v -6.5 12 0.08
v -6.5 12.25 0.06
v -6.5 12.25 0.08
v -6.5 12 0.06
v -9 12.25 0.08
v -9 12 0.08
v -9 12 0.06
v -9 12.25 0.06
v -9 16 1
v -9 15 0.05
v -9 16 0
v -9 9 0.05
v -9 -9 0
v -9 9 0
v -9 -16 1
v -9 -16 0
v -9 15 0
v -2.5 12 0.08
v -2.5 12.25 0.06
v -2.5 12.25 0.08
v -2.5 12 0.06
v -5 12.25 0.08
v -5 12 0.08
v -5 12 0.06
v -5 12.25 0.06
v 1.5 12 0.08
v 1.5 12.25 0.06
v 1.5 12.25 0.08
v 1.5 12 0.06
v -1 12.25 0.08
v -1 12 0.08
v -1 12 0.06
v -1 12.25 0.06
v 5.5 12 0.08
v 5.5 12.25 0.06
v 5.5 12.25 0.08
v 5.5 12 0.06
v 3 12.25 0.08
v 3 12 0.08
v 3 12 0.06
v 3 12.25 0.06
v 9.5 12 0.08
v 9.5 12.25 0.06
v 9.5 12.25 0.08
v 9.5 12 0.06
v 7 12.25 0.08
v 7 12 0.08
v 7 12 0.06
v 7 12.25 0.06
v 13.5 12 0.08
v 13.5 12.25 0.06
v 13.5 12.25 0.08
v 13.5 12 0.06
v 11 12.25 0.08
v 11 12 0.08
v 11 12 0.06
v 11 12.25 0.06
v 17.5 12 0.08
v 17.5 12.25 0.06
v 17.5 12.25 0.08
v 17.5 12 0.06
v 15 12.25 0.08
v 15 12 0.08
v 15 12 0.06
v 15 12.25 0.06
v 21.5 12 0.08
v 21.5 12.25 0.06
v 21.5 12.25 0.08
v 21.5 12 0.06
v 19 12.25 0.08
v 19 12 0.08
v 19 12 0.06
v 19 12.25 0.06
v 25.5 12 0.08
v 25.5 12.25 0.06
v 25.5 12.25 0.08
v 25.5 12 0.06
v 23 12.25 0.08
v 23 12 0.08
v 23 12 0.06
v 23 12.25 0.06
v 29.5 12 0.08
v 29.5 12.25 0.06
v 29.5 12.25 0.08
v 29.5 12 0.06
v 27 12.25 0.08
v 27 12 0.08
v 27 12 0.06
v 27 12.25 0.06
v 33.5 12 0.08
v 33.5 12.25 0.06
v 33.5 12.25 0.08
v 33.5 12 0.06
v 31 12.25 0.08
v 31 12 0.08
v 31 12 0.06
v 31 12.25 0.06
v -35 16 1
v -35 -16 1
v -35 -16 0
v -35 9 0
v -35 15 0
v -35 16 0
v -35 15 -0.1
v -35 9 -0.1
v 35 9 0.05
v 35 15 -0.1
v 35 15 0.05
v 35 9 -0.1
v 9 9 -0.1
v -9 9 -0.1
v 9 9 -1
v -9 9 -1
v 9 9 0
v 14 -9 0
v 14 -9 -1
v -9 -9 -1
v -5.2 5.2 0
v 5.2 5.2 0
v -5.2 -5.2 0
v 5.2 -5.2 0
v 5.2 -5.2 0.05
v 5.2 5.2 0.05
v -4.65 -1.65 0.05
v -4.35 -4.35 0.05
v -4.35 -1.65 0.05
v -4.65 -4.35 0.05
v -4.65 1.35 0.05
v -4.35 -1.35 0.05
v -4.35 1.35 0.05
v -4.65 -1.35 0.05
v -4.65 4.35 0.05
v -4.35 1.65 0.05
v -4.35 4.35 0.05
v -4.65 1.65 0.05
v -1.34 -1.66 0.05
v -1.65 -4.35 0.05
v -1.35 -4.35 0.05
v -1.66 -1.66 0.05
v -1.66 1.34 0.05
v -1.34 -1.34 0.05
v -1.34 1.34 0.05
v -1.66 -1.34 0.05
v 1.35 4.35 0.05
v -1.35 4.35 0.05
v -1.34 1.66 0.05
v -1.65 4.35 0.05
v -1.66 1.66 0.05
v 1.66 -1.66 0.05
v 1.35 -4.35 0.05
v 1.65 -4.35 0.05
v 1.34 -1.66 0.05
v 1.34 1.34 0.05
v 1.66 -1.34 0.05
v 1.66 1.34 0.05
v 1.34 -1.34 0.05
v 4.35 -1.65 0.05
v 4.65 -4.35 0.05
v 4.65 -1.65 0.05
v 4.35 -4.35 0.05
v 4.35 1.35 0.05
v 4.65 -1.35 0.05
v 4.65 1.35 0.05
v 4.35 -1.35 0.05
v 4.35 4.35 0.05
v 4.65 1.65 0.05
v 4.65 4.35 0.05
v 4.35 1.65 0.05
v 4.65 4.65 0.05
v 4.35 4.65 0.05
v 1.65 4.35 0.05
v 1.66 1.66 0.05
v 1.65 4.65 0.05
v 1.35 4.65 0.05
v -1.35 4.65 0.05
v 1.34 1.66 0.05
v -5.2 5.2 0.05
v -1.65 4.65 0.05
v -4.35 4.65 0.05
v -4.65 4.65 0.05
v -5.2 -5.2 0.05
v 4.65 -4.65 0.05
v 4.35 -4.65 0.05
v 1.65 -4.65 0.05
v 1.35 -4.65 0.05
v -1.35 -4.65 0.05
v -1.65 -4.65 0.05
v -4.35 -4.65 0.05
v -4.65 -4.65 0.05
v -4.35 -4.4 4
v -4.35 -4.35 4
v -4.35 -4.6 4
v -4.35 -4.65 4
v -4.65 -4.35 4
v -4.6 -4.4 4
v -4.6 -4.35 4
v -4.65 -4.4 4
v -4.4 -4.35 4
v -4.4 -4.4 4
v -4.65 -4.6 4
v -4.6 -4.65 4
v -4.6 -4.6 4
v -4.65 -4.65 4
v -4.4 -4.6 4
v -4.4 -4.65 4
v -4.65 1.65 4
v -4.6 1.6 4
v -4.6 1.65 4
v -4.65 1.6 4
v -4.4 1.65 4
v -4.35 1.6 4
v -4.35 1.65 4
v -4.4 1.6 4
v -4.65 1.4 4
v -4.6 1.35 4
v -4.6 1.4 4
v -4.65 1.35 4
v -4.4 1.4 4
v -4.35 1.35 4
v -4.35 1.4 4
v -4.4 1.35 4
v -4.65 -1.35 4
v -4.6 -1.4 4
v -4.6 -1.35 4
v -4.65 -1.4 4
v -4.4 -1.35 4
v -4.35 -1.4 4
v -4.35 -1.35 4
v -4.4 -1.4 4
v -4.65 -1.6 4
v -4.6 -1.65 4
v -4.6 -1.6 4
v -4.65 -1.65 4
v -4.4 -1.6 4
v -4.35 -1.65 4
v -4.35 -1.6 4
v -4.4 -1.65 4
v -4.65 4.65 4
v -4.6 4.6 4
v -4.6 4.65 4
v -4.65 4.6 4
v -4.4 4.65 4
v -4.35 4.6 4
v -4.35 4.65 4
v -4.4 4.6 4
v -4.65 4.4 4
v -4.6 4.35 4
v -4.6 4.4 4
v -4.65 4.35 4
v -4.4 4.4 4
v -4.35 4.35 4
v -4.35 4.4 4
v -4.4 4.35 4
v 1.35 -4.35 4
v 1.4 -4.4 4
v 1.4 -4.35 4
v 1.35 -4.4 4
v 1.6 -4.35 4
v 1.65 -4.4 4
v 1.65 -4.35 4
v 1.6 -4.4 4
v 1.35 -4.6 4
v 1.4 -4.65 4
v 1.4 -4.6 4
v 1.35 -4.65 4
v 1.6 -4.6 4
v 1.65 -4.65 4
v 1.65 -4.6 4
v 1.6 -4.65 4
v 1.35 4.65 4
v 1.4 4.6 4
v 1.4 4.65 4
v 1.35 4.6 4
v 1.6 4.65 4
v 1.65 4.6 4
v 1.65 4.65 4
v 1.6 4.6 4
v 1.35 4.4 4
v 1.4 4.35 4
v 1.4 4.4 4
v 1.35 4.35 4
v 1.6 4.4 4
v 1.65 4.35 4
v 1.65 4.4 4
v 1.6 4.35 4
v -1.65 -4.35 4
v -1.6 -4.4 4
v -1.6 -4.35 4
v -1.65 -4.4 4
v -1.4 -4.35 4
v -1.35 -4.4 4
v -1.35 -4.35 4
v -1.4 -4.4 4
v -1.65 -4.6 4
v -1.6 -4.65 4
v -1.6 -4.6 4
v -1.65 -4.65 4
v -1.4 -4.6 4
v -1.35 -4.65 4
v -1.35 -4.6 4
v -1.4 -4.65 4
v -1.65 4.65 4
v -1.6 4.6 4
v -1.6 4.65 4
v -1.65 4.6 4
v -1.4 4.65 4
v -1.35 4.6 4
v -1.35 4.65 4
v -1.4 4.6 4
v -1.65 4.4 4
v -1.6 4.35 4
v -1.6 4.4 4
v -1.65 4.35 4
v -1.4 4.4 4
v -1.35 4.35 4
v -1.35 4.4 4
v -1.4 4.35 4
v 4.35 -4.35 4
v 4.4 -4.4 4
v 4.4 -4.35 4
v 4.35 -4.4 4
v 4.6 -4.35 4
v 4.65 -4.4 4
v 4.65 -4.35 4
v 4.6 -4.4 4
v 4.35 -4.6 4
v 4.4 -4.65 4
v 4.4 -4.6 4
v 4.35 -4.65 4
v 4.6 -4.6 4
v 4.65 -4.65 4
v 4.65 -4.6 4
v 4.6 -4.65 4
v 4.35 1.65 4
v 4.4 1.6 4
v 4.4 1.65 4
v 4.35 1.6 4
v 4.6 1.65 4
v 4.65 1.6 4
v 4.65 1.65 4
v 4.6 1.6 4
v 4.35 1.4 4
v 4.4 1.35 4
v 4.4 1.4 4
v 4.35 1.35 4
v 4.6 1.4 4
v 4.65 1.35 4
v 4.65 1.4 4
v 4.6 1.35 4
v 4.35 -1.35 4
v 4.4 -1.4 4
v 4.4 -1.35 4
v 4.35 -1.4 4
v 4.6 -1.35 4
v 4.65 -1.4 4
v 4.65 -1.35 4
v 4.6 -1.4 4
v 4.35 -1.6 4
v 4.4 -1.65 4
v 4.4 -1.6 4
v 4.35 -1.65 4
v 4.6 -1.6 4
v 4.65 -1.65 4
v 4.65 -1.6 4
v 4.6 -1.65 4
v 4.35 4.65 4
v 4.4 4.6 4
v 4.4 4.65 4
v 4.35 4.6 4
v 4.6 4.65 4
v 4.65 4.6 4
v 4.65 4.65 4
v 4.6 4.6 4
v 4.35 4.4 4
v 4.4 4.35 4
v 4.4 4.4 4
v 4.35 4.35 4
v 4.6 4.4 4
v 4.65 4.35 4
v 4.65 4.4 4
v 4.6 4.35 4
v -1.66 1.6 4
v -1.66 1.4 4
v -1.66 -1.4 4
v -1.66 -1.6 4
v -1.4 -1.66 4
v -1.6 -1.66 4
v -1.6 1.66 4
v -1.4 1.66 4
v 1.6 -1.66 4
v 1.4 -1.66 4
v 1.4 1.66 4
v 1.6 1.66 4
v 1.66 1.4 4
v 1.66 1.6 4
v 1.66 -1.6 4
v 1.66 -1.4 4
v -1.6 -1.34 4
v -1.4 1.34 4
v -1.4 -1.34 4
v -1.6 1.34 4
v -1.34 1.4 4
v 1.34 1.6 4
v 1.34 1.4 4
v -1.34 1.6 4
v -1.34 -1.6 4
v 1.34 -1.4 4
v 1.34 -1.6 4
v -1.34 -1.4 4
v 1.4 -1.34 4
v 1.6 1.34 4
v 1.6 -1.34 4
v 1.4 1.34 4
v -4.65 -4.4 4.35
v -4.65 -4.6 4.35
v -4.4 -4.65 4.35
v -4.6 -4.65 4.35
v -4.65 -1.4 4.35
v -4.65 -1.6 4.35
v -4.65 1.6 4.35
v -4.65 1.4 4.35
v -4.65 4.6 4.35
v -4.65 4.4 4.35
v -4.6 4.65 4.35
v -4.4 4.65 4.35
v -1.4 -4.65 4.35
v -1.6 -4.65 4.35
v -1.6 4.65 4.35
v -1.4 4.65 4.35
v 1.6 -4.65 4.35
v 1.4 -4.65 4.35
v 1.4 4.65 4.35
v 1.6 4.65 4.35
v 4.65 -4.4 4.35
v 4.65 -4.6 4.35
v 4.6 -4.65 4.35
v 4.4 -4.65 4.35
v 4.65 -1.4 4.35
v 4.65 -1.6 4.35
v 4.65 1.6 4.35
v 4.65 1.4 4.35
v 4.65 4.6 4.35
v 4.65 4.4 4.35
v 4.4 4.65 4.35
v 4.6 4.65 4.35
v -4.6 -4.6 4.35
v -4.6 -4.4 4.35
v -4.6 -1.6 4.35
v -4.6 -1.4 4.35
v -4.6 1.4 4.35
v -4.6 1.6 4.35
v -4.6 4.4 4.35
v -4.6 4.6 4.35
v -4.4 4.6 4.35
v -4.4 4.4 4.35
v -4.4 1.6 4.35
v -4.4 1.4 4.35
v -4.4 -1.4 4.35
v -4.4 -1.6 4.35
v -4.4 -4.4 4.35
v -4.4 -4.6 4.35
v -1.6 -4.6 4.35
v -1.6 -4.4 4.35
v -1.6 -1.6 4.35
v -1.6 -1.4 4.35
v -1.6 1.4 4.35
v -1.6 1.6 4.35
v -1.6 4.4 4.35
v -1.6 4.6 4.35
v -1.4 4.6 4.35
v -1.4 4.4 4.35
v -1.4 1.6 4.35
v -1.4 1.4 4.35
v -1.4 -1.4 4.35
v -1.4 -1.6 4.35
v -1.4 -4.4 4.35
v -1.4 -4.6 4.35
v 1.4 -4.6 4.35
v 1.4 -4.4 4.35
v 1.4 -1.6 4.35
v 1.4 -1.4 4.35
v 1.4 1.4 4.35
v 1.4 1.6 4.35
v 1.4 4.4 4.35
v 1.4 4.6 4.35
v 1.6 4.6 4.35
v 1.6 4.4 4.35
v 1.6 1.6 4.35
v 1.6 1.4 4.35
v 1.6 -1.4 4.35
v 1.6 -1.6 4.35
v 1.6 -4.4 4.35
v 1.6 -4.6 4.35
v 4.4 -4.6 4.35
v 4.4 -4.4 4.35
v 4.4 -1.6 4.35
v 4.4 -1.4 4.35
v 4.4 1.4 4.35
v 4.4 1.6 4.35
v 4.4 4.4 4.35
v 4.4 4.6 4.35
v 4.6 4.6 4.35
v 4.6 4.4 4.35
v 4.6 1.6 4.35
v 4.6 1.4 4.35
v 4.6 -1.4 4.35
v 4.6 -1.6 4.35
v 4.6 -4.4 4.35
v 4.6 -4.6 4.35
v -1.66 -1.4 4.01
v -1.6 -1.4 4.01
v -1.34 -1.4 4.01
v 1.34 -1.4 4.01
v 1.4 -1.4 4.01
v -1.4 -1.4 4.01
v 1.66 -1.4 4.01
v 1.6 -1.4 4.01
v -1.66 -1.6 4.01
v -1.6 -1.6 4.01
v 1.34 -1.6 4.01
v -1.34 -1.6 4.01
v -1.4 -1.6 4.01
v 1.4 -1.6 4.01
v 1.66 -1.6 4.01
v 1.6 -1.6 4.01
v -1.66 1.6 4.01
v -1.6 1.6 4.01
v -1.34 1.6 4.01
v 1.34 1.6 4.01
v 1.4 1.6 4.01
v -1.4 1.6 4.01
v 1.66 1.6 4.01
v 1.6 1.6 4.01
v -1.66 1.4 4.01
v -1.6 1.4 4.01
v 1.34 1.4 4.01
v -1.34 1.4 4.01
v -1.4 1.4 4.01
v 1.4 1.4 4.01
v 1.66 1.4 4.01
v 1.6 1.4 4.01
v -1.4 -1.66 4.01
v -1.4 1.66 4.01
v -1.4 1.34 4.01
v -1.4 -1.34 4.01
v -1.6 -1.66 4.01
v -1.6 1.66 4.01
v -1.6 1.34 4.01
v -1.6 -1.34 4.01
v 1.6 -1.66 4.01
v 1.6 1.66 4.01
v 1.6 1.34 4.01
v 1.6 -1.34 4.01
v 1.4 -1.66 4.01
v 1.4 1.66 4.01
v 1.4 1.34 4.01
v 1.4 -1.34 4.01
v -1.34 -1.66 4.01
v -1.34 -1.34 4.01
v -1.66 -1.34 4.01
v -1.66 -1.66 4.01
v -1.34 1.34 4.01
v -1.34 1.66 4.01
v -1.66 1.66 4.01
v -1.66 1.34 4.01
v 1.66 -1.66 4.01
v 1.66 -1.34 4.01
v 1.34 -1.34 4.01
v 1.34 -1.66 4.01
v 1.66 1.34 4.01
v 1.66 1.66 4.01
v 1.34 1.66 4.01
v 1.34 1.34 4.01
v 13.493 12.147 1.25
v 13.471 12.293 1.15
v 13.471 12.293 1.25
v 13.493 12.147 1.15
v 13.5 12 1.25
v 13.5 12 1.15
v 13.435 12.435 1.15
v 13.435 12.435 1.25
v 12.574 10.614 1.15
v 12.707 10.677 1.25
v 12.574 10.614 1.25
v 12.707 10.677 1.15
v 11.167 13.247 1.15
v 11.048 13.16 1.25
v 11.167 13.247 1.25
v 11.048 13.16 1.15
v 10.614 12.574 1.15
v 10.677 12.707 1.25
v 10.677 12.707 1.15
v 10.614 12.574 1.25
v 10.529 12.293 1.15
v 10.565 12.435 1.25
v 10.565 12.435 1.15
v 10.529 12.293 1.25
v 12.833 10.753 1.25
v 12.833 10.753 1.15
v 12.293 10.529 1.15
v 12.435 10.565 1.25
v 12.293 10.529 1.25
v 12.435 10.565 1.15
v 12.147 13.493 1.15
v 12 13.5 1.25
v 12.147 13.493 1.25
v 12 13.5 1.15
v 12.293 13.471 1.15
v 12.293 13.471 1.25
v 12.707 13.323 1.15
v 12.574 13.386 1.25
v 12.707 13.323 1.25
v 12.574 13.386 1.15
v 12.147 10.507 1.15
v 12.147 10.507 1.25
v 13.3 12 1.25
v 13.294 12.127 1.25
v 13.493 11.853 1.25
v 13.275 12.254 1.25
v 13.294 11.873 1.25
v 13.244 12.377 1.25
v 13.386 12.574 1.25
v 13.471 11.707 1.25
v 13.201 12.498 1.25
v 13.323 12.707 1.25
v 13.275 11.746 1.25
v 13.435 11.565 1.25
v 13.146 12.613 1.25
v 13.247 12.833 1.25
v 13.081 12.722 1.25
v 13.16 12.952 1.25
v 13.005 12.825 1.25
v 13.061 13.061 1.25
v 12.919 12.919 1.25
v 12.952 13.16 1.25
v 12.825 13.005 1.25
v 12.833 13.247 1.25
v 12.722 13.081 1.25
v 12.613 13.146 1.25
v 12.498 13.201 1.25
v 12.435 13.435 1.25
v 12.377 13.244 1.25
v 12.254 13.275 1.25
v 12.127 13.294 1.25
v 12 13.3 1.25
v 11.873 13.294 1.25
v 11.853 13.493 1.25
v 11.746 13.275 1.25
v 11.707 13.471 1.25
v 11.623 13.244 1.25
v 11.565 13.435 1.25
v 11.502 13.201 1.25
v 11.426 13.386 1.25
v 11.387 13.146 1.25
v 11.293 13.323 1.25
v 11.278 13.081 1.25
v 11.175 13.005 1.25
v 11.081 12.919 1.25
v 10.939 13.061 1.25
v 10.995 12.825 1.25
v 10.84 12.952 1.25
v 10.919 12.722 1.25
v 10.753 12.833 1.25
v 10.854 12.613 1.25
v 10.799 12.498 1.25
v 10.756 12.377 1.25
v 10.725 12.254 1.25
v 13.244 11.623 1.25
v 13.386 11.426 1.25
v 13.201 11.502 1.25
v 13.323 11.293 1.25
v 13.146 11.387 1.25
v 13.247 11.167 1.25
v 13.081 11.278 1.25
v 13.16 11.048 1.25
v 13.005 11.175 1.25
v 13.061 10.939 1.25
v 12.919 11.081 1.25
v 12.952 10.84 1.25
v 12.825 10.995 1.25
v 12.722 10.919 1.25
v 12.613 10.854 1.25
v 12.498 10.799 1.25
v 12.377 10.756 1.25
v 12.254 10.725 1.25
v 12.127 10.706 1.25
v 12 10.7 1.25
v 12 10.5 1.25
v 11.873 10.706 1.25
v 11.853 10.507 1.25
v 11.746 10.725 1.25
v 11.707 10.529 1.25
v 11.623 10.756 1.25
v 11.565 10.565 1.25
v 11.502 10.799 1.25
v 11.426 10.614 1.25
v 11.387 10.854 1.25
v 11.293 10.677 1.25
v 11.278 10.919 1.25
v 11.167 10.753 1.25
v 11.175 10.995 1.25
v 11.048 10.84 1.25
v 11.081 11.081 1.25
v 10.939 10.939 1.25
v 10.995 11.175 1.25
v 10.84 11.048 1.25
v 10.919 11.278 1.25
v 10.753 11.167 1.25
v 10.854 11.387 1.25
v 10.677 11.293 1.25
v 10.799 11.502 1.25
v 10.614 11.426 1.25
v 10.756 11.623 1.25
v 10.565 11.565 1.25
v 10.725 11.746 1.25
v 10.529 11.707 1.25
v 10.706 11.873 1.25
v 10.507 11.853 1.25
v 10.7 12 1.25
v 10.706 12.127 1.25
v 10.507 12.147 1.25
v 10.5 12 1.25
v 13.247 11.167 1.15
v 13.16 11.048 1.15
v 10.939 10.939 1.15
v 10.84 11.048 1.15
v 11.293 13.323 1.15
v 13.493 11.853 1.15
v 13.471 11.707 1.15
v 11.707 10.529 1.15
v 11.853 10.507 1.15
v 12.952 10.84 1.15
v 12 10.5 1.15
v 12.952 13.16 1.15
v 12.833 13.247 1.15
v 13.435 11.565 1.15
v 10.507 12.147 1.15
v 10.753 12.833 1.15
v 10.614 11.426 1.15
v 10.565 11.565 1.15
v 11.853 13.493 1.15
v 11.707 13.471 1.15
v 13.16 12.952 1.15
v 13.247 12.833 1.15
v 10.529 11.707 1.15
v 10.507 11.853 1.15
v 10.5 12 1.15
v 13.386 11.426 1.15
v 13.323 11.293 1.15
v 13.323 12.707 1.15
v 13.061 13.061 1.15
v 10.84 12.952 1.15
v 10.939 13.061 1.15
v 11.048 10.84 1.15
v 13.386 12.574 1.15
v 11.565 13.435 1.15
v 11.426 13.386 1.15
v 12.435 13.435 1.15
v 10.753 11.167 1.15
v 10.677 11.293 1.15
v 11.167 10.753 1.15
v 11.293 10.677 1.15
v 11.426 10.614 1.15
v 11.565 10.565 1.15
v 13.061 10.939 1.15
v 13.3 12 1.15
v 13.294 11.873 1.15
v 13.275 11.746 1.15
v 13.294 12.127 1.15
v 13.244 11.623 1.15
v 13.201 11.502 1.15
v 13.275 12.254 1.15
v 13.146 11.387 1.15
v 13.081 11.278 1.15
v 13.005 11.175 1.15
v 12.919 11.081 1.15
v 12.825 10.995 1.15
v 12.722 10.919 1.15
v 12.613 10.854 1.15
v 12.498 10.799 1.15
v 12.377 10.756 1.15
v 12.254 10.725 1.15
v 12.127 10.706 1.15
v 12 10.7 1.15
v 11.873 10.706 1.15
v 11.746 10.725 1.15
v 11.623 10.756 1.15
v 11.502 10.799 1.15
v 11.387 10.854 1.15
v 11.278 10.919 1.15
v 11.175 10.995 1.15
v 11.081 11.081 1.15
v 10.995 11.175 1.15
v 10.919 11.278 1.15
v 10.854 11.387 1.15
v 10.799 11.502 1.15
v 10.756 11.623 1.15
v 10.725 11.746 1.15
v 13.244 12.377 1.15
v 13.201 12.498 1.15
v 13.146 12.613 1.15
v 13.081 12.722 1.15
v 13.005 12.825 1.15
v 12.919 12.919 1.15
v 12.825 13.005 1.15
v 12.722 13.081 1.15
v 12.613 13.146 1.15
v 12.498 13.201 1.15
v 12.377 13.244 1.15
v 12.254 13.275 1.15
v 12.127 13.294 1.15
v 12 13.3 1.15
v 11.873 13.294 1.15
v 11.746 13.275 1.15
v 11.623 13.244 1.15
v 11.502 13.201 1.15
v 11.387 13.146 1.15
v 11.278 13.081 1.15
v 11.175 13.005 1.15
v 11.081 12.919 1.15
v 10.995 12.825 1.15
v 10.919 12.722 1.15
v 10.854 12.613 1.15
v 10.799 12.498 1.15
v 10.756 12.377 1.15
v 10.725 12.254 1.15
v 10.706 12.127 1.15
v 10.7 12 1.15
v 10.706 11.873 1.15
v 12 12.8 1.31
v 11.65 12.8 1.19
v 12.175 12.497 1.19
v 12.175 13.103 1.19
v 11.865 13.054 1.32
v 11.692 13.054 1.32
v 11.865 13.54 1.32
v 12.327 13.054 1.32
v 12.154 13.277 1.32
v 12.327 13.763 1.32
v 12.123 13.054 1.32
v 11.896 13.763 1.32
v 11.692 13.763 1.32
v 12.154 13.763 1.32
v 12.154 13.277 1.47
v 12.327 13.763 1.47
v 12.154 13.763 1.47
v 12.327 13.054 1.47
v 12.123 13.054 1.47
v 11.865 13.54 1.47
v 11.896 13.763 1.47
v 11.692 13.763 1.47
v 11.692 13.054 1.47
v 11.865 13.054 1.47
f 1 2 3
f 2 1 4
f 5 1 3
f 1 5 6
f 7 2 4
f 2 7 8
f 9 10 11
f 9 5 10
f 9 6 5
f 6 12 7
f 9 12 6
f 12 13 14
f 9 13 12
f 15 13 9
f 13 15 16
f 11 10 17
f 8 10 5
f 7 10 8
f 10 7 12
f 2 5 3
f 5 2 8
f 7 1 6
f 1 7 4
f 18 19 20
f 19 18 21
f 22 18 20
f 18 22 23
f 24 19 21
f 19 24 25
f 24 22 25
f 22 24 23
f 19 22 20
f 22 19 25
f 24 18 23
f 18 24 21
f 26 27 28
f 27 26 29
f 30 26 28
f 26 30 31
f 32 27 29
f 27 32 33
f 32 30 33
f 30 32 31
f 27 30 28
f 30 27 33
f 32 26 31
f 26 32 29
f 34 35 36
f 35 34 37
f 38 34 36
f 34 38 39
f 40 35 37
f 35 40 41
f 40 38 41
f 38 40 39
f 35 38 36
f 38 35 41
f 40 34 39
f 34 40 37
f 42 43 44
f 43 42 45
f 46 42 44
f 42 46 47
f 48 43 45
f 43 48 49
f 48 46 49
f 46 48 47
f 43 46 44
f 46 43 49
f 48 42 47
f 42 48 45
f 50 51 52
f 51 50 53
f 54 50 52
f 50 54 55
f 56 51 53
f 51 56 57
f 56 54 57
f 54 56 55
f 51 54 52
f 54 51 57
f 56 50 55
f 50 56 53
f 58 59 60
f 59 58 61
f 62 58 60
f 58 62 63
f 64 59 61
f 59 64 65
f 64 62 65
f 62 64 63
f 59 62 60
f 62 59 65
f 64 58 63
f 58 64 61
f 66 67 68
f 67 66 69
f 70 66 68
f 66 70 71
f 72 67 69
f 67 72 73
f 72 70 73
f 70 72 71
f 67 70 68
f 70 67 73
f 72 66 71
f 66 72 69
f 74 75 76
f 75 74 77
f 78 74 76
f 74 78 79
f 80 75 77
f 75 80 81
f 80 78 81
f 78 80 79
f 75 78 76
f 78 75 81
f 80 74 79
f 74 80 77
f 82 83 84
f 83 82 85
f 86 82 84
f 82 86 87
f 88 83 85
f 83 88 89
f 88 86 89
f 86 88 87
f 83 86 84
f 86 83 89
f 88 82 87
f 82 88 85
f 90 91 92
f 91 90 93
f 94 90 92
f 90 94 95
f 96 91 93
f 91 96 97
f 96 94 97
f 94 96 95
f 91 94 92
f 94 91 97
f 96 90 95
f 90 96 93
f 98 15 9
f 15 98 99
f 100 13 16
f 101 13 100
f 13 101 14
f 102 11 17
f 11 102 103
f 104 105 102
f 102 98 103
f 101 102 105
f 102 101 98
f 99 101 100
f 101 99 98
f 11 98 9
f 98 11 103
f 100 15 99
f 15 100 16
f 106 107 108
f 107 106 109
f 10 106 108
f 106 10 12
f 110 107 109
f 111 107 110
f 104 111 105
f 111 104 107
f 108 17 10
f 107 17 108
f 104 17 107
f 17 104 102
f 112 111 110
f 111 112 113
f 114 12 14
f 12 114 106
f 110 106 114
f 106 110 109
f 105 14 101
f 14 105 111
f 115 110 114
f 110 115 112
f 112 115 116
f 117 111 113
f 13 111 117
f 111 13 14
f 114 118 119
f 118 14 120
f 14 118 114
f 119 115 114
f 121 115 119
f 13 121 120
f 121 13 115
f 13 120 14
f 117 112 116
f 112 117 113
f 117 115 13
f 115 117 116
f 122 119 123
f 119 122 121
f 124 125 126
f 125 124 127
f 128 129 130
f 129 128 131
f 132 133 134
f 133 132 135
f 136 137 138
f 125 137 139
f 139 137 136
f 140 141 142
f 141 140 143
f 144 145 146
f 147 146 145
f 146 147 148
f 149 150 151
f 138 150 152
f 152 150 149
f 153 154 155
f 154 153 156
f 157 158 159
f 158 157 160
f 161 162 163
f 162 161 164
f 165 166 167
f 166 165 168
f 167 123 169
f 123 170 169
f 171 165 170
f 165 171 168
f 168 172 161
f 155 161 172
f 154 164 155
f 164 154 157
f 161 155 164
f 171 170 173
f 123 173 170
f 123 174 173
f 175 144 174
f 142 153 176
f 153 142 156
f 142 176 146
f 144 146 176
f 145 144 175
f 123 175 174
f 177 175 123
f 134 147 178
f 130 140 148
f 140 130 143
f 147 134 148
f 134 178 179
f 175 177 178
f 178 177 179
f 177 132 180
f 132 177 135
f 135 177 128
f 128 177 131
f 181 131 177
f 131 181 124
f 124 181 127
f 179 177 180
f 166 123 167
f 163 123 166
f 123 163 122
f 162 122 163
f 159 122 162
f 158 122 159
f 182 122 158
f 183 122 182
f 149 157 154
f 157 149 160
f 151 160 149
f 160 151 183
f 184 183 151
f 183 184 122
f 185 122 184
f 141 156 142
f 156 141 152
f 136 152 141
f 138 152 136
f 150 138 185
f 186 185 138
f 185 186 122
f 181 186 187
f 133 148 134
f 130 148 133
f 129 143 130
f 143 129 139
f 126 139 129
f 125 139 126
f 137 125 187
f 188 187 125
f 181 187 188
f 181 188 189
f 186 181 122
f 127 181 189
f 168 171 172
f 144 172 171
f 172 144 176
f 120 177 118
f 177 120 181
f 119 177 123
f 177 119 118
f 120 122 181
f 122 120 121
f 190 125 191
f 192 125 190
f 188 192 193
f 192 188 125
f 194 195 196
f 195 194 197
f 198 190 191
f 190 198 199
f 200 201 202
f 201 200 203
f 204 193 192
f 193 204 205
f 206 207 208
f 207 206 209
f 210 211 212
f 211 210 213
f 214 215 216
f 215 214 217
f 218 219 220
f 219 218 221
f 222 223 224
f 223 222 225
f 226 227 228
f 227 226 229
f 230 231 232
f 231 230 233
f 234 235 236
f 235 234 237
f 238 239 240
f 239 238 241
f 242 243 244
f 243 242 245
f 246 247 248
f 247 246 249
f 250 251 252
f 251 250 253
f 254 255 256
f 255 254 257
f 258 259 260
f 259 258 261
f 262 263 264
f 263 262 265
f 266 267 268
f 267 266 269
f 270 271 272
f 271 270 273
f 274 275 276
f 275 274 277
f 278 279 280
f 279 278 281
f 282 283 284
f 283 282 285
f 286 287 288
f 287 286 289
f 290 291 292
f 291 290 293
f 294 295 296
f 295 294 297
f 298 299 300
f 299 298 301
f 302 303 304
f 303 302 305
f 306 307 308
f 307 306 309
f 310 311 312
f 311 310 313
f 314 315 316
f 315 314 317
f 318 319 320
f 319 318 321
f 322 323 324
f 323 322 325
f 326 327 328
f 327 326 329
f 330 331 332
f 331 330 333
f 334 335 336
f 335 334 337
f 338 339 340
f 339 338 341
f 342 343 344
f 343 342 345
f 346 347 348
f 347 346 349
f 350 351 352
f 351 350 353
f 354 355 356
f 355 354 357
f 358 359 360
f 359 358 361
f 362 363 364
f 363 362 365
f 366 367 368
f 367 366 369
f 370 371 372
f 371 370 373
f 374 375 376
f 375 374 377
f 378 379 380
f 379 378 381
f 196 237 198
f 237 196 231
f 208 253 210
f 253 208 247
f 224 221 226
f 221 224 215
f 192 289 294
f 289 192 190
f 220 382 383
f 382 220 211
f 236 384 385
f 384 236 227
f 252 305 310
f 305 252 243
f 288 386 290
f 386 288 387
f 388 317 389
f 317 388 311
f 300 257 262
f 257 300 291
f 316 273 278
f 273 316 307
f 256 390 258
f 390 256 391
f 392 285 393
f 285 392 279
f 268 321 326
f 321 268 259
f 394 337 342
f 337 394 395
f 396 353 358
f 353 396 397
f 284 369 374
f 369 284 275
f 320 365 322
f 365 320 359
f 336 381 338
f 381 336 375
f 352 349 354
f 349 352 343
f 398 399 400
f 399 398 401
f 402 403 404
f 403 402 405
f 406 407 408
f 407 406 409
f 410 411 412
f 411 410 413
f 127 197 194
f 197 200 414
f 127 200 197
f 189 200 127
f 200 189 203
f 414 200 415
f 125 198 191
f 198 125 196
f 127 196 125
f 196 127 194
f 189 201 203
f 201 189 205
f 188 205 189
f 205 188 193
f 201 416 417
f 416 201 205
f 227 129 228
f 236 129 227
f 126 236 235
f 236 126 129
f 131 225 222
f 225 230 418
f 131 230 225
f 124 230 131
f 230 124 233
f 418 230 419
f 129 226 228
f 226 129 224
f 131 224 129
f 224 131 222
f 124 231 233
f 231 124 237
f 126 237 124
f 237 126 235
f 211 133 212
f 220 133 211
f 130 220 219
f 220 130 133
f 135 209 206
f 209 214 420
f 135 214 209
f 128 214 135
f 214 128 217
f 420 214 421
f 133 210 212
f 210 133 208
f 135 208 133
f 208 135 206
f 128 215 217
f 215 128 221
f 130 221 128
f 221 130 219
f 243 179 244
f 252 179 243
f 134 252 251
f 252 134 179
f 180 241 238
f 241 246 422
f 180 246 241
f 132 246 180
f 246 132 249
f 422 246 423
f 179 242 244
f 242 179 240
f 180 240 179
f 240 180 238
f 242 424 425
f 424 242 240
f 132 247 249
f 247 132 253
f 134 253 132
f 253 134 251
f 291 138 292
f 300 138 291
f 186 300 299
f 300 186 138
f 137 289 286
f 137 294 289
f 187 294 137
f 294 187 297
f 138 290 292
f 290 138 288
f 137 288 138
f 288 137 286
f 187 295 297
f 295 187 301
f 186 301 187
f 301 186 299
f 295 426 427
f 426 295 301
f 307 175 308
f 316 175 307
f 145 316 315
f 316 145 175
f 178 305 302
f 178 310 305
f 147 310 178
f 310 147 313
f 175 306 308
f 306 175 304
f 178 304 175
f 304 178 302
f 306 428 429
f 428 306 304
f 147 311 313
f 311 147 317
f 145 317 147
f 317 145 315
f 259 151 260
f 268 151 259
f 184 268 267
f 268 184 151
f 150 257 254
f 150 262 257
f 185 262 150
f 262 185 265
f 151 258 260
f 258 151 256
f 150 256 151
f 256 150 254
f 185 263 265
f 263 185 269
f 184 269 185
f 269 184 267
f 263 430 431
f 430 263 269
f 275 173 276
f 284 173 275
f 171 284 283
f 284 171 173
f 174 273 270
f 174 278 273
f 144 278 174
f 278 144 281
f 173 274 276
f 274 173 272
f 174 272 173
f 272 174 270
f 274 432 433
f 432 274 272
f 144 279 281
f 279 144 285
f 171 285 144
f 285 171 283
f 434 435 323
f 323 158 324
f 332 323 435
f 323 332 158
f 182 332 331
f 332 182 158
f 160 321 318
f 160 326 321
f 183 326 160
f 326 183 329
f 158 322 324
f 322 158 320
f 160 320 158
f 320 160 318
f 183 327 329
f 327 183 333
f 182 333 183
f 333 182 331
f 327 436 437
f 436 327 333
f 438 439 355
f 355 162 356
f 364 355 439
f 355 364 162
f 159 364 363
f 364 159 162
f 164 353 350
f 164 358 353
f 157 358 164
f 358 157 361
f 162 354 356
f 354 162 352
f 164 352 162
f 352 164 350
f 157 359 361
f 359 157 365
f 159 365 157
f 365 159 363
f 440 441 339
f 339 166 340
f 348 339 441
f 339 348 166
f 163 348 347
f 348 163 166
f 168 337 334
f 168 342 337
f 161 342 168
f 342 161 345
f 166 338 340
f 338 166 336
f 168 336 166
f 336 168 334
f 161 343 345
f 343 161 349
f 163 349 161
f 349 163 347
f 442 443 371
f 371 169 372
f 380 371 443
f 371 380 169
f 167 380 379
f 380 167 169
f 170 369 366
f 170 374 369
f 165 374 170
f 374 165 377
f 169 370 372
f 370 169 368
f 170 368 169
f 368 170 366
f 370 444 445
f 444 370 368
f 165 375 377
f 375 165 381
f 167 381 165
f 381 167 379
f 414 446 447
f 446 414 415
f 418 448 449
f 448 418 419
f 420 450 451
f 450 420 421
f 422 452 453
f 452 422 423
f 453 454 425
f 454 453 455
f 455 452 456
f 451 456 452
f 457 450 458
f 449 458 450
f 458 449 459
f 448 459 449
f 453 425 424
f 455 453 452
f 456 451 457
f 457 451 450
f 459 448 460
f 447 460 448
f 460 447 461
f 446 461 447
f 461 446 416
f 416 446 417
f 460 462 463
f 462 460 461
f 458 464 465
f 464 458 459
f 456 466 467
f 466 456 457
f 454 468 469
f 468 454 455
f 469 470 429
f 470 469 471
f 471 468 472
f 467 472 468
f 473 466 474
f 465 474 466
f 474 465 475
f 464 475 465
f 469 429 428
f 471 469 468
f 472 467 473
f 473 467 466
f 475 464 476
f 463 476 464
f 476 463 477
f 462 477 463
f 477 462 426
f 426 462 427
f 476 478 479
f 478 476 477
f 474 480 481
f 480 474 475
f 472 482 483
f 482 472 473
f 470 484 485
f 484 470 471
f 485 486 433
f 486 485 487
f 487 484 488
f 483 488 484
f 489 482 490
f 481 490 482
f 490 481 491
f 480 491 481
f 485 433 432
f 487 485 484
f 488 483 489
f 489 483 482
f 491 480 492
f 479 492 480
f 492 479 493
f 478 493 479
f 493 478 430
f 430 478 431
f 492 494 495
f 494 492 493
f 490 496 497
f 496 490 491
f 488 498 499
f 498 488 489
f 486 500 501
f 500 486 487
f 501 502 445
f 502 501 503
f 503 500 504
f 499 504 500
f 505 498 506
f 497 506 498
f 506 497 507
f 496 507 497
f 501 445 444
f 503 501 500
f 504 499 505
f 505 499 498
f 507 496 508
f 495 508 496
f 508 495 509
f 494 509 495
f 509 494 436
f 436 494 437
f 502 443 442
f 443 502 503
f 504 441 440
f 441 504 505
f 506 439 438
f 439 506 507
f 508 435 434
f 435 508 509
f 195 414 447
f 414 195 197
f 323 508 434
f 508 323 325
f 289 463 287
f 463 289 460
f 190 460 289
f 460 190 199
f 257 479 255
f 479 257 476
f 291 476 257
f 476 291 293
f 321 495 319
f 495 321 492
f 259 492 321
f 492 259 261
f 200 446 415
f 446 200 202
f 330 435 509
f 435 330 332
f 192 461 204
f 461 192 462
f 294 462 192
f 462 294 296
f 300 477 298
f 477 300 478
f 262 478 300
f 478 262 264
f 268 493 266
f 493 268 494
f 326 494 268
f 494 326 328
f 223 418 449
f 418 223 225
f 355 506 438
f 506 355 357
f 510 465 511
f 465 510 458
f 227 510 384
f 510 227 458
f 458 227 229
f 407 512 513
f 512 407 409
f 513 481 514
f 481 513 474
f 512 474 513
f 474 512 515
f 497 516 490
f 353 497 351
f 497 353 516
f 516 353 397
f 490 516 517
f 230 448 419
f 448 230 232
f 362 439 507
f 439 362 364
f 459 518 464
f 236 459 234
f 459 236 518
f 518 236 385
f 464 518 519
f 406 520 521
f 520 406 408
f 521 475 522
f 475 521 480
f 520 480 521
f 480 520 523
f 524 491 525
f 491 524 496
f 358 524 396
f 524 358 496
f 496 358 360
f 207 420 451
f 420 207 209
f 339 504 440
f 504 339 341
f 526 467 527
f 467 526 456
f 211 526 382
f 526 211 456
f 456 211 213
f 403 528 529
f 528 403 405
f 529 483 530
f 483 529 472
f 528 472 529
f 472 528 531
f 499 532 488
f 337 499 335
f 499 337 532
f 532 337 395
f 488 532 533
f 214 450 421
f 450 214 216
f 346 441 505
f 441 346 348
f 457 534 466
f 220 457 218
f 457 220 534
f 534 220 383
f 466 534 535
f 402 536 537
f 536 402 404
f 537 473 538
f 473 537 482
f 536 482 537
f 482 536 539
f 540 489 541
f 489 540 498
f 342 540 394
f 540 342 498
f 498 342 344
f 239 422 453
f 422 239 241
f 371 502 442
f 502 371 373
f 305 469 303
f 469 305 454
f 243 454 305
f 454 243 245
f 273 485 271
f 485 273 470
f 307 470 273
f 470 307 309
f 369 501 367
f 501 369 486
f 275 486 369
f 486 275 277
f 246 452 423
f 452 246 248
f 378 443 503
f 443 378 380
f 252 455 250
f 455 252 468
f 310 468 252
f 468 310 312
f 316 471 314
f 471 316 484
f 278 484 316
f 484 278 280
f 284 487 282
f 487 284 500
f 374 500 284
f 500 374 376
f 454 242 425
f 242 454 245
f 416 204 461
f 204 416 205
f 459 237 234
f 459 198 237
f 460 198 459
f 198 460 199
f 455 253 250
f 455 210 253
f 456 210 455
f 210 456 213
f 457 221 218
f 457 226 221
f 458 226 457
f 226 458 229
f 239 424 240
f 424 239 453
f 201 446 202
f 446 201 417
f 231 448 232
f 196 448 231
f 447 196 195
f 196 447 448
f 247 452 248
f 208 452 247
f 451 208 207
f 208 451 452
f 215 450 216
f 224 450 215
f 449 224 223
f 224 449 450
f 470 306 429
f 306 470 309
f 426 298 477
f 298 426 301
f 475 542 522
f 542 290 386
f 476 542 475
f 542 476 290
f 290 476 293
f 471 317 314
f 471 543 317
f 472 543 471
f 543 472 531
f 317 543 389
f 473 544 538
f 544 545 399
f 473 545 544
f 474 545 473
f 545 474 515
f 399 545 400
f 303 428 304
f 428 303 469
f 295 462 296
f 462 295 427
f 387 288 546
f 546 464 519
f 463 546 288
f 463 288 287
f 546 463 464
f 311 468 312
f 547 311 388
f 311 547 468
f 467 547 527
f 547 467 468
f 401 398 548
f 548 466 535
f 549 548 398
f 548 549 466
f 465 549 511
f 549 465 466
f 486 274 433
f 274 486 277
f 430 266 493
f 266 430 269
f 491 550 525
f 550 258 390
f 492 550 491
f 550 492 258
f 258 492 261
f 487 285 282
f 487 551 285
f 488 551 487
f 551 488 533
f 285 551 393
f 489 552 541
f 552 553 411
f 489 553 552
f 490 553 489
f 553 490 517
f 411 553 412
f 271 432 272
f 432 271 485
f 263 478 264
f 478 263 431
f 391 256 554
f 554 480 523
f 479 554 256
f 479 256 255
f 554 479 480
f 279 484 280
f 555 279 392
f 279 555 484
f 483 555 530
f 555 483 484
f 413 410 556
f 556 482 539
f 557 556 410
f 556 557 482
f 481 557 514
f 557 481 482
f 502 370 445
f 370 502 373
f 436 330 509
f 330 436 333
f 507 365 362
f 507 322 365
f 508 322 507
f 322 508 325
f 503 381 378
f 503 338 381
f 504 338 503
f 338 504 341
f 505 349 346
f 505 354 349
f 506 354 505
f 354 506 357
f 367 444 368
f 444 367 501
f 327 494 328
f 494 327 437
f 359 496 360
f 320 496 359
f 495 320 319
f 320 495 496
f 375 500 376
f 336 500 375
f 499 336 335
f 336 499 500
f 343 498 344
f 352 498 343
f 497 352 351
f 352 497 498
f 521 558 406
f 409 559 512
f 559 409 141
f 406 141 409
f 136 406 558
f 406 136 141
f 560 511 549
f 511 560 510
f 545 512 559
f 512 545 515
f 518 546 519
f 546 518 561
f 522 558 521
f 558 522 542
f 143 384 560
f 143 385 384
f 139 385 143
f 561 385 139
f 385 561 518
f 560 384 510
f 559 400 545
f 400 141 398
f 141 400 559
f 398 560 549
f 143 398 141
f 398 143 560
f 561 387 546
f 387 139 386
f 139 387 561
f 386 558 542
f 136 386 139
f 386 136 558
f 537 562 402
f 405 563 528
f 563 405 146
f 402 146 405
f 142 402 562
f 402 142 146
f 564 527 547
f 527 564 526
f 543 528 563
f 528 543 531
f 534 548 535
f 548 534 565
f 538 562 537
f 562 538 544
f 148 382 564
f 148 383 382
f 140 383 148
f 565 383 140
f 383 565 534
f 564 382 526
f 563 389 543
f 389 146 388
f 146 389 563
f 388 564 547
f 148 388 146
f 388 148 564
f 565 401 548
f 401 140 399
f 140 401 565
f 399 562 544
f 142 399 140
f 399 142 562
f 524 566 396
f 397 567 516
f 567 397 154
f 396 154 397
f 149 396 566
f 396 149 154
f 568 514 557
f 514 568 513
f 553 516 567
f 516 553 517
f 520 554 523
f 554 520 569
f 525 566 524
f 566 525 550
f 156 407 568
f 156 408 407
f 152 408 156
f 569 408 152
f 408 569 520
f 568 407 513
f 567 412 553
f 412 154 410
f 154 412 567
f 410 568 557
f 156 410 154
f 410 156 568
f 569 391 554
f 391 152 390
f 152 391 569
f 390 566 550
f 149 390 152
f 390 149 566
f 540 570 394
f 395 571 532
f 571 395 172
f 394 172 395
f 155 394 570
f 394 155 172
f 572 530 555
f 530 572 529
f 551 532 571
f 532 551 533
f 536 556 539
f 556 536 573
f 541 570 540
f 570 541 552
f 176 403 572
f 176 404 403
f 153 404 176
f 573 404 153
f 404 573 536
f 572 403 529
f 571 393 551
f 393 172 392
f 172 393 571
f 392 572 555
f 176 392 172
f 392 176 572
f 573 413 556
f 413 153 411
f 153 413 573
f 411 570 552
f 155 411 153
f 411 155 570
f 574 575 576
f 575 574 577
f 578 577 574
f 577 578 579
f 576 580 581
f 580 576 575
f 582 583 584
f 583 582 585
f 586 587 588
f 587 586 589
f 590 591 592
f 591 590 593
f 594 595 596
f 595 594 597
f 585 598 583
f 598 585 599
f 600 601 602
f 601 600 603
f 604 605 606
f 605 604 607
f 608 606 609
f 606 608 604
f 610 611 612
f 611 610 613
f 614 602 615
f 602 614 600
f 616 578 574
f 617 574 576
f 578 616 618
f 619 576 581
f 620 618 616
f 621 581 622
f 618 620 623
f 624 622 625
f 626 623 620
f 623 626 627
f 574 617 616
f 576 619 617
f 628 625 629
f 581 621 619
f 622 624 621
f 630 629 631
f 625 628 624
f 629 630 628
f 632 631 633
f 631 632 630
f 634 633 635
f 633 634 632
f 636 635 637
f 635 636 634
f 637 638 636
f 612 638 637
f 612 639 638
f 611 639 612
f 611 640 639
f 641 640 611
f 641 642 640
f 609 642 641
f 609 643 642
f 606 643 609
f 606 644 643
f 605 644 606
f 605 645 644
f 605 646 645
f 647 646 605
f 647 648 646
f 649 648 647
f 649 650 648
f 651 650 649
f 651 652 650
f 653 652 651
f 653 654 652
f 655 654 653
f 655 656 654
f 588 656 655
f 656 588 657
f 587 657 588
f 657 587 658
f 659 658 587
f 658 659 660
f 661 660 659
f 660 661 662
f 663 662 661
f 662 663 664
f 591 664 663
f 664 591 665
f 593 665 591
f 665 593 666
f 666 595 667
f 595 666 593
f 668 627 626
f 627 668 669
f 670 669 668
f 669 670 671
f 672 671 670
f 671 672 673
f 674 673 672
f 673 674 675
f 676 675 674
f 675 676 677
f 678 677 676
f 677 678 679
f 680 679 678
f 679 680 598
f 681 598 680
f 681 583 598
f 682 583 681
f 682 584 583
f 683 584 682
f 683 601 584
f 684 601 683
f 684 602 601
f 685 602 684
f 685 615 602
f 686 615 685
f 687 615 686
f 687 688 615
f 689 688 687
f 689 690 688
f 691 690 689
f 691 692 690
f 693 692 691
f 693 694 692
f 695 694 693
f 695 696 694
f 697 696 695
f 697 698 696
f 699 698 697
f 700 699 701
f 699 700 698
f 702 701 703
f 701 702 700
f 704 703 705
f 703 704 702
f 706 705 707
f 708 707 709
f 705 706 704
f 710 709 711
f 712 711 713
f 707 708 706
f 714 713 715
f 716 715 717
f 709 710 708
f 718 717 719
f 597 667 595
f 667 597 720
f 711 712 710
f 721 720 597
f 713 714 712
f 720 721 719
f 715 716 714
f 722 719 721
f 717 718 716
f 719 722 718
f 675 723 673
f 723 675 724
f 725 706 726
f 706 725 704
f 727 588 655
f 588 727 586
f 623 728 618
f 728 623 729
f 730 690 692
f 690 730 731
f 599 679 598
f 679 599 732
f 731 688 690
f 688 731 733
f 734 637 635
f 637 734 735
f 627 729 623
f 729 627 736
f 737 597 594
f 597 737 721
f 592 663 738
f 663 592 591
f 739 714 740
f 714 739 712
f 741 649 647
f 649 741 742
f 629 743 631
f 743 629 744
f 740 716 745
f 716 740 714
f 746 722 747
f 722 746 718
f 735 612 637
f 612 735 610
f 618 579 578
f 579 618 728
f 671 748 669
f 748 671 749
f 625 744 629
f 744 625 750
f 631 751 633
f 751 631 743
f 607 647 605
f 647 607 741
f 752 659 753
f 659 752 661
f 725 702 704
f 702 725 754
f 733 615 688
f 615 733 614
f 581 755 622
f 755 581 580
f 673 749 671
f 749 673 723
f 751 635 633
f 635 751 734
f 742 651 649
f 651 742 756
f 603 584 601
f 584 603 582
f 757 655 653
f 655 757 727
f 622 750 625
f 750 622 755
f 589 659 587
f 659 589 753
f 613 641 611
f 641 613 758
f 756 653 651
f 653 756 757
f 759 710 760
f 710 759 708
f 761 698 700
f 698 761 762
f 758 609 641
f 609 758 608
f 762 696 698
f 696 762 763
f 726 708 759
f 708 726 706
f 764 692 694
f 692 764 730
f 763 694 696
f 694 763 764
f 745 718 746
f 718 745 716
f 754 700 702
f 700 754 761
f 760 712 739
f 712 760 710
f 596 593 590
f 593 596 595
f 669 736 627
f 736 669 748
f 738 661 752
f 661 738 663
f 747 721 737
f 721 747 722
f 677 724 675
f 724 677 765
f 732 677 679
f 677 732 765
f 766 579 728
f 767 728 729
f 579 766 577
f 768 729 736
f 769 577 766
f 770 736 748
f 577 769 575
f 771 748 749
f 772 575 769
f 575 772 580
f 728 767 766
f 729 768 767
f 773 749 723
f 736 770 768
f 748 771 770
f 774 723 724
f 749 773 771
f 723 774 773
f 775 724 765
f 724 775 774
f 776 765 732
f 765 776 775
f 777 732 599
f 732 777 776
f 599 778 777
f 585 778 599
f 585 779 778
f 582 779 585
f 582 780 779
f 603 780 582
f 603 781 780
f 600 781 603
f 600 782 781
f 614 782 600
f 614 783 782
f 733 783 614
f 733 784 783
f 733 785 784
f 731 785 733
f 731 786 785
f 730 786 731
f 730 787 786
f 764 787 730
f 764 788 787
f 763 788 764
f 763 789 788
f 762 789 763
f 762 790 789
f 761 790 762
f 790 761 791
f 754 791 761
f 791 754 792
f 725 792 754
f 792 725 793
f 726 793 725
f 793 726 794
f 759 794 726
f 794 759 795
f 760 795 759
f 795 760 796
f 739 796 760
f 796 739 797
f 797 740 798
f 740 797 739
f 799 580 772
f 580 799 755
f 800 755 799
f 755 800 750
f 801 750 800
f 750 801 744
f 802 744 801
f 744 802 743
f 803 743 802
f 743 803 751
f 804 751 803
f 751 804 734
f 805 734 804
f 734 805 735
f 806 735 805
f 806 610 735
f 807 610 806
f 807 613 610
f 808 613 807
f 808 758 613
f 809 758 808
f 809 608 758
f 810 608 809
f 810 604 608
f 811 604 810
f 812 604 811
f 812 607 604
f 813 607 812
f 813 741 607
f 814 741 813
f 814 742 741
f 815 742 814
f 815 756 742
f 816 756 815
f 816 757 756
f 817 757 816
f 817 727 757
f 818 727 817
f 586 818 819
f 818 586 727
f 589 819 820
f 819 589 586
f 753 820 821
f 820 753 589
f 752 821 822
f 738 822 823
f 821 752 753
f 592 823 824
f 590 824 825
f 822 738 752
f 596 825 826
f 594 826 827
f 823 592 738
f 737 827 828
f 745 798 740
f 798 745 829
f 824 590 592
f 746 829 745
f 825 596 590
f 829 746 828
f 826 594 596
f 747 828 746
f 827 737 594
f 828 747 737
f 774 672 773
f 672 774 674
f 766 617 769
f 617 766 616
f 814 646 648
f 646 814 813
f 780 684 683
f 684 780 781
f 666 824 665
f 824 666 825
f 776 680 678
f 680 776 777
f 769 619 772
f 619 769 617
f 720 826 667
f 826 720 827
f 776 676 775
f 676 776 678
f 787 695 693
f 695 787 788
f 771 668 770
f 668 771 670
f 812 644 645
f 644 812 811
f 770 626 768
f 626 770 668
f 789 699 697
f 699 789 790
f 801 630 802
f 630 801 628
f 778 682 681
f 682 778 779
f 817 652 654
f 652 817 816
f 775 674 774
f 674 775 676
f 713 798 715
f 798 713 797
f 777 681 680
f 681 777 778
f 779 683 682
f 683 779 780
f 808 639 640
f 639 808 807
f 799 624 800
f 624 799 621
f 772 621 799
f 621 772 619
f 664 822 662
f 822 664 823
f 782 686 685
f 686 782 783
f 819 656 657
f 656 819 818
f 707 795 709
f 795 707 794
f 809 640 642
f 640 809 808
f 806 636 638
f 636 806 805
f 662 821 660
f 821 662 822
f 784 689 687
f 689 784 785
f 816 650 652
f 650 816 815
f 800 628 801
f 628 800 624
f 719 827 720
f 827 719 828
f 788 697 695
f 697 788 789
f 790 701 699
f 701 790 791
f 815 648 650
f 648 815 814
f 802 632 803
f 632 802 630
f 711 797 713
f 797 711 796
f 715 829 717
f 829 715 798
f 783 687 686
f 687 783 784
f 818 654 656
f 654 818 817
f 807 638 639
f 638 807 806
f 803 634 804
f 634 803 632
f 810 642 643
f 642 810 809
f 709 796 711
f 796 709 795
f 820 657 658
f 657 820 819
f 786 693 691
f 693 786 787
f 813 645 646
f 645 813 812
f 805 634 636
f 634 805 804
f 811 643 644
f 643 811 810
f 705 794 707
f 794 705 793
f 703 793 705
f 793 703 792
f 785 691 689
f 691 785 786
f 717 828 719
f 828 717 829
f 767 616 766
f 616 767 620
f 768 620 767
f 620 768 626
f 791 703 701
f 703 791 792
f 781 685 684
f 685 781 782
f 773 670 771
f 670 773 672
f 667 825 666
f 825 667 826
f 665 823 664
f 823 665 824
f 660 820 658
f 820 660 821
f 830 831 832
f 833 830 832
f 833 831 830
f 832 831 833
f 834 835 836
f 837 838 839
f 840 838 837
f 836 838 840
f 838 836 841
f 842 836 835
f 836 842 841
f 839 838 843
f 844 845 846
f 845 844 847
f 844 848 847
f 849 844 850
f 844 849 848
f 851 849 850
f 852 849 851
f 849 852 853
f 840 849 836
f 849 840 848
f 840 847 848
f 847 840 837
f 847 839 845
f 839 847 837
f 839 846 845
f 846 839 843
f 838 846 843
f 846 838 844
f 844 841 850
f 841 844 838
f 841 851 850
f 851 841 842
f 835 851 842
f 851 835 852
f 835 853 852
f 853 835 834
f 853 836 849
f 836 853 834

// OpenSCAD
// =============================================================================================================
// MASJID NURUL FALAH SUKATANI — STEP 05: REINFORCED COLUMNS & RING BALK
// Parametric Architectural CSG Model (OpenSCAD)
//
// STRICT CIVIL MANDATE: NORTH AT TOP (+Y AXIS)
// 16 MAIN REINFORCED COLUMNS K-300 (30x30cm x 4.0m) + RING BALK BEAMS (20x35cm)
// =============================================================================================================

$fn = 64;

poly_site = [ [-9, -9], [14, -9], [9, 9], [-9, 9] ];
grid_x = [-4.5, -1.5, 1.5, 4.5];
grid_y = [-4.5, -1.5, 1.5, 4.5];

// --------------------------------------------------------------------
// 1. SURROUNDINGS
// --------------------------------------------------------------------
module surroundings() {
    // West Land (+1.00m elevated neighbor terrain)
    color([0.22, 0.42, 0.24]) {
        translate([-22, 0, 0.5]) cube([26, 32, 1.0], center = true);
    }
    color([0.38, 0.32, 0.26]) {
        translate([-9.1, 0, 0.5]) cube([0.2, 28, 1.0], center = true);
    }
    // North Road 6.0m
    color([0.18, 0.20, 0.24]) {
        translate([-35, 9, -0.10]) cube([70, 6.0, 0.15]);
    }
    color([0.92, 0.92, 0.95]) {
        for (x = [-33 : 4 : 31]) {
            translate([x, 12, 0.06]) cube([2.5, 0.25, 0.02]);
        }
    }
}

// --------------------------------------------------------------------
// 2. SITE BASE GROUND & SLAB
// --------------------------------------------------------------------
module site_base_ground() {
    color([0.28, 0.52, 0.30]) {
        translate([0, 0, -1.0]) linear_extrude(height = 1.0) polygon(poly_site);
    }
    color([0.72, 0.75, 0.80]) {
        translate([0, 0, 0.0]) cube([10.4, 10.4, 0.10], center = true);
    }
}

// --------------------------------------------------------------------
// 3. 16 STRUCTURAL COLUMNS & TOP RING BALK FRAMEWORK
// --------------------------------------------------------------------
module columns_and_ring_balk() {
    // 16 Reinforced Concrete Columns (30x30cm x 4.0m Height)
    color([0.70, 0.74, 0.80]) {
        for (x = grid_x) {
            for (y = grid_y) {
                translate([x, y, 2.0])
                    cube([0.30, 0.30, 4.0], center = true);
            }
        }
    }

    // Top Ring Balk Structural Beams at +4.00m (20cm x 35cm K-300)
    color([0.58, 0.62, 0.68]) {
        // X-Direction Ring Beams
        for (y = grid_y) {
            translate([0, y, 4.0 + 0.175])
                cube([9.30, 0.20, 0.35], center = true);
        }
        // Y-Direction Ring Beams
        for (x = grid_x) {
            translate([x, 0, 4.0 + 0.175])
                cube([0.20, 9.30, 0.35], center = true);
        }
    }

    // 4 Soko Guru Central Columns Highlighting (Golden Accent Markers)
    color([1.0, 0.78, 0.20, 0.8]) {
        for (x = [-1.5, 1.5]) {
            for (y = [-1.5, 1.5]) {
                translate([x, y, 2.0])
                    cube([0.32, 0.32, 4.02], center = true);
            }
        }
    }
}

// --------------------------------------------------------------------
// 4. 3D COMPASS ROSE (North Pointer strictly at +Y)
// --------------------------------------------------------------------
module compass_rose_3d() {
    translate([12, 12, 1.2]) {
        color([0.0, 0.75, 0.95])
            difference() {
                cylinder(h = 0.10, r = 1.5, center = true);
                cylinder(h = 0.12, r = 1.3, center = true);
            }
        color([0.95, 0.2, 0.2]) {
            translate([0, 0.8, 0.05])
                rotate([0, 0, 180])
                    cylinder(h = 0.12, r1 = 0.35, r2 = 0.0, $fn = 3, center = true);
        }
        color([0.9, 0.9, 0.9]) {
            translate([0, 1.4, 0.12])
                linear_extrude(height = 0.15)
                    text("N", size = 0.7, font = "Liberation Sans:style=Bold", halign = "center", valign = "center");
        }
    }
}

// --------------------------------------------------------------------
// 5. MASTER STEP 05 ASSEMBLY
// --------------------------------------------------------------------
module step_05_columns_master() {
    surroundings();
    site_base_ground();
    columns_and_ring_balk();
    compass_rose_3d();
}

step_05_columns_master();
